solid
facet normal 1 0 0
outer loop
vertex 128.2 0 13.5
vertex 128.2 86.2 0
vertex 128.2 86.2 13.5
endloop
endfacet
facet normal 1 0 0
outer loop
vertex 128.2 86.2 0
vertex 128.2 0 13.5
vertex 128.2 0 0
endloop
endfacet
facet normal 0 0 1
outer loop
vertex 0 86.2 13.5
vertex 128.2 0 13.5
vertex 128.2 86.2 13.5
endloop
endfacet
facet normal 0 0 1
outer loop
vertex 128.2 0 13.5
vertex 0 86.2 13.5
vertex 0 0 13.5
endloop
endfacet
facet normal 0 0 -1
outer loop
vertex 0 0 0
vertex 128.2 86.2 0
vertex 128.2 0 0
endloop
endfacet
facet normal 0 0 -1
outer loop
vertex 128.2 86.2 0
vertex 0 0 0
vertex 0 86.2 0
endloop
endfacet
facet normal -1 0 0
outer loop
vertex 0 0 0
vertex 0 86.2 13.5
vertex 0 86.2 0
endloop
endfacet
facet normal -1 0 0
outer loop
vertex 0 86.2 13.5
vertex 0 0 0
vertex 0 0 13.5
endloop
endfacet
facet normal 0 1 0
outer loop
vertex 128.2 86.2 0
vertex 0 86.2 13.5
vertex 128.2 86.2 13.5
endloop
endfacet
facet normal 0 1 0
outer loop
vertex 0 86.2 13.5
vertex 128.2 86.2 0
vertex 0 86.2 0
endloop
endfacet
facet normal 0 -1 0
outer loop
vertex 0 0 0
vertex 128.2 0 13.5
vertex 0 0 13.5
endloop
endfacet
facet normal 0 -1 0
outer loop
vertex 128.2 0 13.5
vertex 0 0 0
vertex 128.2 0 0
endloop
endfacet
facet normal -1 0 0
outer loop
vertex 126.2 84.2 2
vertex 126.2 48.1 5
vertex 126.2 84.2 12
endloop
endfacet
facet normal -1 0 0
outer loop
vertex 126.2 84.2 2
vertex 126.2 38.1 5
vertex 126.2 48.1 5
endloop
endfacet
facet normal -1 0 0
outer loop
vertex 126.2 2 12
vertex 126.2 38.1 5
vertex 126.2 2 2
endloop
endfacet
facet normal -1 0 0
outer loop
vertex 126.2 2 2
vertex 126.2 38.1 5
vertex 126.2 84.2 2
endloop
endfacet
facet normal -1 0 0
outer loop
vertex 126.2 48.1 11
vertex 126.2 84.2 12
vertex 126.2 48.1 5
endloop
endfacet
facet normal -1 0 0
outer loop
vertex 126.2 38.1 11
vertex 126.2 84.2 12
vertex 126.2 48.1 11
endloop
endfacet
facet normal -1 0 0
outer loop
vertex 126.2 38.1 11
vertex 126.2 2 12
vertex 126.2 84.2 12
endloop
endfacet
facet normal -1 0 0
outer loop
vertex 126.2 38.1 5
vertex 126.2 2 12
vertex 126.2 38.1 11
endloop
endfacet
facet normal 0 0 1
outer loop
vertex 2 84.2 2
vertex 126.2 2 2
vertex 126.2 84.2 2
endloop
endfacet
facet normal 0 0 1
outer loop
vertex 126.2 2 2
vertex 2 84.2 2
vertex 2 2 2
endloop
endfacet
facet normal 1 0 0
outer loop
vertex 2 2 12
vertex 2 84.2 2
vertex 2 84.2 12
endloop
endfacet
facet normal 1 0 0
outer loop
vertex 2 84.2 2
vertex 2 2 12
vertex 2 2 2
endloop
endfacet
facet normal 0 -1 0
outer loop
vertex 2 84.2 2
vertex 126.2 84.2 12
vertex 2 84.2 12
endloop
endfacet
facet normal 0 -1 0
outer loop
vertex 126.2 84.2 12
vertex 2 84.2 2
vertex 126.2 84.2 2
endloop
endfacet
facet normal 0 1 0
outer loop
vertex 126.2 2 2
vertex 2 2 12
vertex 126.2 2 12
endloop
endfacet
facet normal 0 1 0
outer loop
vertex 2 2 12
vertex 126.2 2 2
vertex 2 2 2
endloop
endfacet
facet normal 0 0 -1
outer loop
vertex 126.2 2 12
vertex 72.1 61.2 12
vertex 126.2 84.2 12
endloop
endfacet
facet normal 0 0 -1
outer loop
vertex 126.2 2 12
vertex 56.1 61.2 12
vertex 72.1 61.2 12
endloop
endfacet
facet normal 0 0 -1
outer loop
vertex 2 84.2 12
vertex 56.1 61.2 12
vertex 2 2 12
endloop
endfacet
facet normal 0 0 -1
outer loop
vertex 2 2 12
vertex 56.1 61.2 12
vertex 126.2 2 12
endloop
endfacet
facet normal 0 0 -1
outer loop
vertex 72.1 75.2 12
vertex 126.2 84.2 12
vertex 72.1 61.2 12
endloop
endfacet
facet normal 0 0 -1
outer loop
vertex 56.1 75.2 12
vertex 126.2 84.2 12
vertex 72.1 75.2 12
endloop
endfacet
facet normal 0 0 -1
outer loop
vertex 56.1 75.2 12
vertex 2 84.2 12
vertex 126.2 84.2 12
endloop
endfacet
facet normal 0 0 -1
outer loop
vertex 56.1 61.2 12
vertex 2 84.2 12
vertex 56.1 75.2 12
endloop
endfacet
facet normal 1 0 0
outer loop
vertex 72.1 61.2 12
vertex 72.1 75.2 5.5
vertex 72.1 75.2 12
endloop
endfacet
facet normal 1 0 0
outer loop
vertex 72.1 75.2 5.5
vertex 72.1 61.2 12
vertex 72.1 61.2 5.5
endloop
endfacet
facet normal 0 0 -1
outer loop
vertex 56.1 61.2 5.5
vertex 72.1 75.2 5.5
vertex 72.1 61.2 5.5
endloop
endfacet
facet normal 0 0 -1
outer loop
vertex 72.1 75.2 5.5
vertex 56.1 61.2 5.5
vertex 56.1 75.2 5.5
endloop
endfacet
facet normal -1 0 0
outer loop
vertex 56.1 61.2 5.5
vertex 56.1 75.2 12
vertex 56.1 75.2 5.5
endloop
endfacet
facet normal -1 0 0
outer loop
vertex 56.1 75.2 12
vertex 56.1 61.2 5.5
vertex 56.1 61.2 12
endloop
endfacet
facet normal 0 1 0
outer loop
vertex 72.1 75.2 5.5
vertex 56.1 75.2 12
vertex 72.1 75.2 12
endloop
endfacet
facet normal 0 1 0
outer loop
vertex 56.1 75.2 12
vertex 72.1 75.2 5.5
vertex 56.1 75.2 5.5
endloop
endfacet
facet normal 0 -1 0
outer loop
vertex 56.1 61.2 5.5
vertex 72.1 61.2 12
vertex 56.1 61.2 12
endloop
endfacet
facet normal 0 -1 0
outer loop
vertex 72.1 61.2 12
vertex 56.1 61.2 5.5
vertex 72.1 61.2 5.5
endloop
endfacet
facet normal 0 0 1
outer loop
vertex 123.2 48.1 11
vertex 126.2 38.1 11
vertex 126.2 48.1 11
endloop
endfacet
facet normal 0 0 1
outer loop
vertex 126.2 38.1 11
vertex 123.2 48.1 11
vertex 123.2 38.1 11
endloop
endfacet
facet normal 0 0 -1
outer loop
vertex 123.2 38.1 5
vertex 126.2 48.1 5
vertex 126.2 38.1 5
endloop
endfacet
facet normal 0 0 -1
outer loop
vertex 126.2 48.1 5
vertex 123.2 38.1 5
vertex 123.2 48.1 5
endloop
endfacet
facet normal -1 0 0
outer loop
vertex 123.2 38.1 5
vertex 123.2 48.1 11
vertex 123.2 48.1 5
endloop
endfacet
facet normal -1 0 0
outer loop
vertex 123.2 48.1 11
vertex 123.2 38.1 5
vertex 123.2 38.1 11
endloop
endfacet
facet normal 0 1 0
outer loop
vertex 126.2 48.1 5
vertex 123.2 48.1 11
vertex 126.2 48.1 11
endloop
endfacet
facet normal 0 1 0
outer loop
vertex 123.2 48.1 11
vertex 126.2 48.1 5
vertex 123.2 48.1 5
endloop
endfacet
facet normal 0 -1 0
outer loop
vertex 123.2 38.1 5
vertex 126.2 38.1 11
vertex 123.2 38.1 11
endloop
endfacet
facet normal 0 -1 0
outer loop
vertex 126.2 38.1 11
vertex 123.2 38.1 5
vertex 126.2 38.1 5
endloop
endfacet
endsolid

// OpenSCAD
// Samsung Galaxy Z Fold 8 — Rear Case (folded), PETG
// Snug-fit back cover for FlashForge Adventurer 5M

// --- Phone dimensions (folded) ---
phone_w = 123.9;   // width
phone_h = 81.9;    // height
phone_t = 9.7;     // thickness

// --- Case parameters ---
wall = 2.0;               // case wall thickness
clearance = 0.3;          // gap between phone and case (snug fit)
lip = 1.5;                // lip over front edge
lip_overlap = 0.5;        // how far lip wraps onto front

// --- Derived ---
inner_w = phone_w + clearance;
inner_h = phone_h + clearance;
inner_t = phone_t + clearance;
outer_w = inner_w + 2*wall;
outer_h = inner_h + 2*wall;
outer_t = inner_t + wall + lip;  // back wall + lip

$fn = 32;

// --- Main module ---
module back_case() {
    difference() {
        // Outer block
        cube([outer_w, outer_h, outer_t]);

        // Inner cavity (phone space + clearance)
        translate([wall, wall, wall])
            cube([inner_w, inner_h, inner_t]);

        // Lip cutout at front edge (so phone can slide in)
        translate([wall, wall, outer_t - lip - clearance])
            cube([inner_w, inner_h, lip + clearance]);
    }

    // Lip around front edge (wraps onto front face)
    translate([0, 0, outer_t - lip])
        cube([outer_w, outer_h, lip]);

    // Camera cutout (centered, typical Fold 8 camera bump)
    translate([outer_w/2 - 8, outer_h - 25, outer_t - 8])
        cube([16, 14, 8]);

    // Side button cutouts (right side, folded)
    translate([outer_w - wall - 3, outer_h/2 - 5, wall + 3])
        cube([3, 10, 6]);
}

back_case();
